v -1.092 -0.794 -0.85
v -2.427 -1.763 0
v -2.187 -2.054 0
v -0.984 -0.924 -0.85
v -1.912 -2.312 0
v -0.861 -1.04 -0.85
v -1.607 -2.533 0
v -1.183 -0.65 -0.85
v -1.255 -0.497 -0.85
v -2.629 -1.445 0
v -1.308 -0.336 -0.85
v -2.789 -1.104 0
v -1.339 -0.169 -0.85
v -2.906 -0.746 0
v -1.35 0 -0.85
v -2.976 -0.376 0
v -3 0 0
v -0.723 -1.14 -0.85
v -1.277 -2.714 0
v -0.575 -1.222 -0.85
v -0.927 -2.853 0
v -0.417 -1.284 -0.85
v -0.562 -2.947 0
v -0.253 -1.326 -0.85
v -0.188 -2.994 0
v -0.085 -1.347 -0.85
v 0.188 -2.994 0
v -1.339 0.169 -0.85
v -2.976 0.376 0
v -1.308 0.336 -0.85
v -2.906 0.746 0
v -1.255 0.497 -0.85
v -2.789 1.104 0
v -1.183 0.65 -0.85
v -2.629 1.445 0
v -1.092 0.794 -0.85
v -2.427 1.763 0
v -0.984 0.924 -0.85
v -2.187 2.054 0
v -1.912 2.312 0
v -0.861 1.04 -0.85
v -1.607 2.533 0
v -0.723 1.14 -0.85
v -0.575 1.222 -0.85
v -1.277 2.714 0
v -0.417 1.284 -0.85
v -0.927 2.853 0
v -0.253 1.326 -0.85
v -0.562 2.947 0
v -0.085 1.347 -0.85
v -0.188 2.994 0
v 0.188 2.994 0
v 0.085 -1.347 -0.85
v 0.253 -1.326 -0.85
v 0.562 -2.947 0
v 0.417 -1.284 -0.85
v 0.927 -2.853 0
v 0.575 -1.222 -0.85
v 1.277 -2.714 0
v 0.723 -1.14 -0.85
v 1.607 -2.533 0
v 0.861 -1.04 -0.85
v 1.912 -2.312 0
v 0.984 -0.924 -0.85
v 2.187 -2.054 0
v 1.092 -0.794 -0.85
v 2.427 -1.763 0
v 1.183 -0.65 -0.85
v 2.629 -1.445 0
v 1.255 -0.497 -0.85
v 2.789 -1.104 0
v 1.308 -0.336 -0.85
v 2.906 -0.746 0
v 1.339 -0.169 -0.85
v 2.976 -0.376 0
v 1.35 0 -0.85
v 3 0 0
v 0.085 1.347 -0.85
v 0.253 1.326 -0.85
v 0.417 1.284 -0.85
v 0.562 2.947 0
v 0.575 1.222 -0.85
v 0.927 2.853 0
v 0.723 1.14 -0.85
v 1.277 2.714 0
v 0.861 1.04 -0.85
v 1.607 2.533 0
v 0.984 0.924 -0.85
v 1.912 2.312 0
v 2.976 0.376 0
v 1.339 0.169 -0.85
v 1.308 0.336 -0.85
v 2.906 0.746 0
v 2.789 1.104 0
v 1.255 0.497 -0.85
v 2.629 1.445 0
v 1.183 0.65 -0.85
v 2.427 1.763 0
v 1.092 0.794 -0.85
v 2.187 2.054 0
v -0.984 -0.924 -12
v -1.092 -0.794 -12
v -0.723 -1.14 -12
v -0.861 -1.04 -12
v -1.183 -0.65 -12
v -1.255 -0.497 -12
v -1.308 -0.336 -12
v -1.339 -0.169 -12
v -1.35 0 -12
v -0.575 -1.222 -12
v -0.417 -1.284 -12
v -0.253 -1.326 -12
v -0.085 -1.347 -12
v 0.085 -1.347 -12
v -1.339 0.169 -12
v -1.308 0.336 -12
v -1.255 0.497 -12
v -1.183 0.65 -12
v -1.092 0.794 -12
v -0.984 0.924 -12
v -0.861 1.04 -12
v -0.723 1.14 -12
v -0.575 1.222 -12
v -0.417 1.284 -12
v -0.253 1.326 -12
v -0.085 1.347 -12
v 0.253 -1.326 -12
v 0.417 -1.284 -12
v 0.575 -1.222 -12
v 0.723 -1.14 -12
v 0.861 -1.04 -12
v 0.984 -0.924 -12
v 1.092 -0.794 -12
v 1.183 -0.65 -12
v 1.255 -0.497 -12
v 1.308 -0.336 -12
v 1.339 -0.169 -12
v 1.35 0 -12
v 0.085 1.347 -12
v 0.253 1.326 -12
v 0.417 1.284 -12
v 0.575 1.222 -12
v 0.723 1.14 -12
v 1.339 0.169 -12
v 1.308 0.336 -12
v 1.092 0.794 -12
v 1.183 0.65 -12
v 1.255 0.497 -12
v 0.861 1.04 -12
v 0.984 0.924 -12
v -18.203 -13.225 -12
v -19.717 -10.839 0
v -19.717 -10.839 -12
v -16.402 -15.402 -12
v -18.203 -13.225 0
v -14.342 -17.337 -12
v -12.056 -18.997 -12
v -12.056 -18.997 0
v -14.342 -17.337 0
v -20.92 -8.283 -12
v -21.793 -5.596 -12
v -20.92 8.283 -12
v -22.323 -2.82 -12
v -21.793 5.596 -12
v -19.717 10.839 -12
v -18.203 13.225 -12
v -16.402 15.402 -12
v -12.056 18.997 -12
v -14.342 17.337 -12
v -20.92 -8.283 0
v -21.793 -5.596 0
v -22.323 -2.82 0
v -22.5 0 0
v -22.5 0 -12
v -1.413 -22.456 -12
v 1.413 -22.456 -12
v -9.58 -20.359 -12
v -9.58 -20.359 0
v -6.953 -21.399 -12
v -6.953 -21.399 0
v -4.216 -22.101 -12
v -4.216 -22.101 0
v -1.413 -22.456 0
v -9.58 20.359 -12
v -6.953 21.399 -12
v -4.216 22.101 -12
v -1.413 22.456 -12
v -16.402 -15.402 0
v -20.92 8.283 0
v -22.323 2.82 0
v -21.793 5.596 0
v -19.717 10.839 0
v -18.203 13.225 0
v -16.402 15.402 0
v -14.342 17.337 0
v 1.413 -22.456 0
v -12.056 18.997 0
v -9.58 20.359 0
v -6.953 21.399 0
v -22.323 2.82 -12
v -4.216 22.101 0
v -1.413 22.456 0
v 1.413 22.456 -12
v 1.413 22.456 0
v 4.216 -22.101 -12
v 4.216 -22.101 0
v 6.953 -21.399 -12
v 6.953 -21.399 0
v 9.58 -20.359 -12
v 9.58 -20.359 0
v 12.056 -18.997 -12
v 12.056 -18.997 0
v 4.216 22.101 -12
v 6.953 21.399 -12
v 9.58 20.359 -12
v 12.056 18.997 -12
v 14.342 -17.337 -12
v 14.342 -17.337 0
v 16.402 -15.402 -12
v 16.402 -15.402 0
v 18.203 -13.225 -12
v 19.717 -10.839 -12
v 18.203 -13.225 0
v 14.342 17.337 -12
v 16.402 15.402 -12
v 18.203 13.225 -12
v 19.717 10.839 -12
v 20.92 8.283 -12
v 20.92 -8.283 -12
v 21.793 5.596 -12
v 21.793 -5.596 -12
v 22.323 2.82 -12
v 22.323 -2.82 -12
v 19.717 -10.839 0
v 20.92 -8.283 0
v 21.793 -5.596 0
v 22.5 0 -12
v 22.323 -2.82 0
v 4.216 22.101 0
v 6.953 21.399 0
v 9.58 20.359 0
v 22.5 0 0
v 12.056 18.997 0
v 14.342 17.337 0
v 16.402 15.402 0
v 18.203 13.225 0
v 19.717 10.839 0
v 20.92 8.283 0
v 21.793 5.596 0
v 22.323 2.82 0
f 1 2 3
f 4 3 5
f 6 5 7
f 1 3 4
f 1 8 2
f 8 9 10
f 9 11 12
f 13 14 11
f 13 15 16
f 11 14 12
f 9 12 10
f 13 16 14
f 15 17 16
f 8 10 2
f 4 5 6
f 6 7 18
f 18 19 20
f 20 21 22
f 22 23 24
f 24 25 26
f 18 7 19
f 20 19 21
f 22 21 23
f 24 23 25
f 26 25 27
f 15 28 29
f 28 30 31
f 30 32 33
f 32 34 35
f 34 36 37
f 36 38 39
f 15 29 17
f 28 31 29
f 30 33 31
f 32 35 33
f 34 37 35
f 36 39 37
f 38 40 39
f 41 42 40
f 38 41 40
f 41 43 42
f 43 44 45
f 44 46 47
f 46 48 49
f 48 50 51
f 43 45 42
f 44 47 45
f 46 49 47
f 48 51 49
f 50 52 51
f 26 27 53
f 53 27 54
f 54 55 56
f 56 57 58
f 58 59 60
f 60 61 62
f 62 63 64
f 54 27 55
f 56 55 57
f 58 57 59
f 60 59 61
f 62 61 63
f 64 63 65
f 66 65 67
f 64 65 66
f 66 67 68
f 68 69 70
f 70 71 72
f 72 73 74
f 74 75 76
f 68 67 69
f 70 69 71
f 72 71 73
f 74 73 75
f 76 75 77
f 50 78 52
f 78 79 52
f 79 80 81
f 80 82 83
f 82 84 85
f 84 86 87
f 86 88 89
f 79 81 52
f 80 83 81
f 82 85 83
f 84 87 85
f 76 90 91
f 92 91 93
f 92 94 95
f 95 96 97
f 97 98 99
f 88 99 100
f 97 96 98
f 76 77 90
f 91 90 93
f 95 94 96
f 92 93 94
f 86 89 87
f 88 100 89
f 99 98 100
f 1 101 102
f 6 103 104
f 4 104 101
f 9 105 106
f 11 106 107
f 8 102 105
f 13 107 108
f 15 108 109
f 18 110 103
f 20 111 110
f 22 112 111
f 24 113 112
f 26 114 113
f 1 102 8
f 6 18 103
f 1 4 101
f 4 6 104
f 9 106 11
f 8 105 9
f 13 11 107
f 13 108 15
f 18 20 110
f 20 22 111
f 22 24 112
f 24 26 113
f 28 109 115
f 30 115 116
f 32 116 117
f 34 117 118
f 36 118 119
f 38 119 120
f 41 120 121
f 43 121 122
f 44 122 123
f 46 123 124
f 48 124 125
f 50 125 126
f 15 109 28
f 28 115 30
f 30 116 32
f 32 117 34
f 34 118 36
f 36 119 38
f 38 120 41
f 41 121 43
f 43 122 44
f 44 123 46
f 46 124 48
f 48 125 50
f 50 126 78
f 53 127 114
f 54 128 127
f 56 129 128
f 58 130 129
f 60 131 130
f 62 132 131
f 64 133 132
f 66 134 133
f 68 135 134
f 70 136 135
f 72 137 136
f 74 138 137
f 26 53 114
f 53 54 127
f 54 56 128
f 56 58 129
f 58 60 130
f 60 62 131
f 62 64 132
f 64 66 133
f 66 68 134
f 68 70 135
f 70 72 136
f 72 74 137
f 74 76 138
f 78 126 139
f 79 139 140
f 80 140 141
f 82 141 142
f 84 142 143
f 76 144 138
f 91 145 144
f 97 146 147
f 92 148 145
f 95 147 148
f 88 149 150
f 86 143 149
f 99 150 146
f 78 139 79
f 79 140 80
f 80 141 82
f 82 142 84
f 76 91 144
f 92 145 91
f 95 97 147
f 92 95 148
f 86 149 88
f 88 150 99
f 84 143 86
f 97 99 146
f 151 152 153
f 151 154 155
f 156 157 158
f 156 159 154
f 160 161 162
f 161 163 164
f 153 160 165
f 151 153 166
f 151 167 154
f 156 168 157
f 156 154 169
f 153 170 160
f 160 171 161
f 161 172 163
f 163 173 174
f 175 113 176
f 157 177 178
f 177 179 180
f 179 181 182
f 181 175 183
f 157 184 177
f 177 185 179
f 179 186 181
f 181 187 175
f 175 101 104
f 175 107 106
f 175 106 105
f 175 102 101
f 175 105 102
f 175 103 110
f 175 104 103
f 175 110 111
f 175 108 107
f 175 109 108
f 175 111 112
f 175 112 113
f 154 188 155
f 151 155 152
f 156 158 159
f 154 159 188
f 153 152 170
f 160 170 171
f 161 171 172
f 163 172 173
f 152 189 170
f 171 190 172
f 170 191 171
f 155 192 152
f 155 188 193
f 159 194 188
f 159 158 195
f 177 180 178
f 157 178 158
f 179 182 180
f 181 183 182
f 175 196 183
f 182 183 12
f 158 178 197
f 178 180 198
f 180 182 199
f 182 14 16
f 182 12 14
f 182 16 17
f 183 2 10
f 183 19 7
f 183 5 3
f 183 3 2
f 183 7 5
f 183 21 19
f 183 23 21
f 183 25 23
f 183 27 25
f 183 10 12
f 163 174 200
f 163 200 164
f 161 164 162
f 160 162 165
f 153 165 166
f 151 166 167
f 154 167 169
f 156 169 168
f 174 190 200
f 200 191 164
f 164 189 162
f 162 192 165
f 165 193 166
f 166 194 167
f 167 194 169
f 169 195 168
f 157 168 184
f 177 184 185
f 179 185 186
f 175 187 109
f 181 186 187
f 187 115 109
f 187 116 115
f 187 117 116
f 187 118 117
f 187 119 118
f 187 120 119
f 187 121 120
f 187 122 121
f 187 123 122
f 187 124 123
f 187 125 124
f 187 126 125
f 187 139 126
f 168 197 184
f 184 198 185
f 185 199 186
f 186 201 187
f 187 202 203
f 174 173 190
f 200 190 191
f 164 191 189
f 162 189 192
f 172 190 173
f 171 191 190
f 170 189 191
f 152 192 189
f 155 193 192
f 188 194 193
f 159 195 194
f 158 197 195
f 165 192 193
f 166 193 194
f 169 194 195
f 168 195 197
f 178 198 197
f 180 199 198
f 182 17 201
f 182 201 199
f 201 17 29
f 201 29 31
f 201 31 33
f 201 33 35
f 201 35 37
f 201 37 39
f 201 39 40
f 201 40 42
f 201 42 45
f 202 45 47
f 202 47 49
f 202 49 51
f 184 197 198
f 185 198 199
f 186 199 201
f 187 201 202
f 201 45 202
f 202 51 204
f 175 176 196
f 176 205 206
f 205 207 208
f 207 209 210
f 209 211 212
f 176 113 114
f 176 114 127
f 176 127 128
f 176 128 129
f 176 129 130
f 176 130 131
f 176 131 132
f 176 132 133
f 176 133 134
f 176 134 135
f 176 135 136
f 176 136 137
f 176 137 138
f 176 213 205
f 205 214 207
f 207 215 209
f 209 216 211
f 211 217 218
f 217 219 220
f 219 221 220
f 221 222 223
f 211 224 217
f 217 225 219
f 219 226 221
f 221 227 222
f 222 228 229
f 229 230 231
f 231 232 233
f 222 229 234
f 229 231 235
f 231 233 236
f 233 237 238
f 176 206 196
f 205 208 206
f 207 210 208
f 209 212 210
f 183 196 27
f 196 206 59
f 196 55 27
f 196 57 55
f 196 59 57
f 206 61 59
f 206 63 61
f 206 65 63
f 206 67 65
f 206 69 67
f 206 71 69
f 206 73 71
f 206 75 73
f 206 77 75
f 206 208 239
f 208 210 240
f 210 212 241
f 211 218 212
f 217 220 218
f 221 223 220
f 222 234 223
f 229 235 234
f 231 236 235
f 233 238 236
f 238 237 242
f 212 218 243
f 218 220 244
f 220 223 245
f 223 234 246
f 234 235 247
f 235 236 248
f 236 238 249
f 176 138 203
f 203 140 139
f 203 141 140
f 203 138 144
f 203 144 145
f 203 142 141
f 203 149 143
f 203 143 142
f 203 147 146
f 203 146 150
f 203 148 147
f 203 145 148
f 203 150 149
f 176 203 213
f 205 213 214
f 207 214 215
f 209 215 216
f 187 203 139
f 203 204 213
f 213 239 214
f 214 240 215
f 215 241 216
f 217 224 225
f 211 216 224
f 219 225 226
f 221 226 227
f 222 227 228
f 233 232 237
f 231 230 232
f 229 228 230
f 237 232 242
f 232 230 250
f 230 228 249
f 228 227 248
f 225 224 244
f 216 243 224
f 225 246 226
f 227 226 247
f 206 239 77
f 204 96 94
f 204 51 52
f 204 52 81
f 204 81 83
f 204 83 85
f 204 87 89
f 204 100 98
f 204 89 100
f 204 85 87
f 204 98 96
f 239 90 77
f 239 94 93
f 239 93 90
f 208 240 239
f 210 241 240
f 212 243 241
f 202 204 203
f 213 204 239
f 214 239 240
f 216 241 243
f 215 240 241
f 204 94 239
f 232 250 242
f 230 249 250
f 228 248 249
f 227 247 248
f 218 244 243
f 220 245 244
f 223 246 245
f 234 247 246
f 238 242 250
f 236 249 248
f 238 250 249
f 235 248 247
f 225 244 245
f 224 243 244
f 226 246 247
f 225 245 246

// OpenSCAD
$fn = 50;


difference() {
	union() {
		translate(v = [0, 0, -12.0000000000]) {
			cylinder(h = 12, r = 22.5000000000);
		}
	}
	union() {
		translate(v = [0, 0, 0]) {
			rotate(a = [0, 0, 0]) {
				difference() {
					union() {
						translate(v = [0, 0, -15.0000000000]) {
							cylinder(h = 15, r = 1.0000000000);
						}
						translate(v = [0, 0, -0.8500000000]) {
							cylinder(h = 0.8500000000, r1 = 1.3500000000, r2 = 3.0000000000);
						}
						translate(v = [0, 0, -15.0000000000]) {
							cylinder(h = 15, r = 1.3500000000);
						}
						translate(v = [0, 0, -15.0000000000]) {
							cylinder(h = 15, r = 1.0000000000);
						}
					}
					union();
				}
			}
		}
	}
}
